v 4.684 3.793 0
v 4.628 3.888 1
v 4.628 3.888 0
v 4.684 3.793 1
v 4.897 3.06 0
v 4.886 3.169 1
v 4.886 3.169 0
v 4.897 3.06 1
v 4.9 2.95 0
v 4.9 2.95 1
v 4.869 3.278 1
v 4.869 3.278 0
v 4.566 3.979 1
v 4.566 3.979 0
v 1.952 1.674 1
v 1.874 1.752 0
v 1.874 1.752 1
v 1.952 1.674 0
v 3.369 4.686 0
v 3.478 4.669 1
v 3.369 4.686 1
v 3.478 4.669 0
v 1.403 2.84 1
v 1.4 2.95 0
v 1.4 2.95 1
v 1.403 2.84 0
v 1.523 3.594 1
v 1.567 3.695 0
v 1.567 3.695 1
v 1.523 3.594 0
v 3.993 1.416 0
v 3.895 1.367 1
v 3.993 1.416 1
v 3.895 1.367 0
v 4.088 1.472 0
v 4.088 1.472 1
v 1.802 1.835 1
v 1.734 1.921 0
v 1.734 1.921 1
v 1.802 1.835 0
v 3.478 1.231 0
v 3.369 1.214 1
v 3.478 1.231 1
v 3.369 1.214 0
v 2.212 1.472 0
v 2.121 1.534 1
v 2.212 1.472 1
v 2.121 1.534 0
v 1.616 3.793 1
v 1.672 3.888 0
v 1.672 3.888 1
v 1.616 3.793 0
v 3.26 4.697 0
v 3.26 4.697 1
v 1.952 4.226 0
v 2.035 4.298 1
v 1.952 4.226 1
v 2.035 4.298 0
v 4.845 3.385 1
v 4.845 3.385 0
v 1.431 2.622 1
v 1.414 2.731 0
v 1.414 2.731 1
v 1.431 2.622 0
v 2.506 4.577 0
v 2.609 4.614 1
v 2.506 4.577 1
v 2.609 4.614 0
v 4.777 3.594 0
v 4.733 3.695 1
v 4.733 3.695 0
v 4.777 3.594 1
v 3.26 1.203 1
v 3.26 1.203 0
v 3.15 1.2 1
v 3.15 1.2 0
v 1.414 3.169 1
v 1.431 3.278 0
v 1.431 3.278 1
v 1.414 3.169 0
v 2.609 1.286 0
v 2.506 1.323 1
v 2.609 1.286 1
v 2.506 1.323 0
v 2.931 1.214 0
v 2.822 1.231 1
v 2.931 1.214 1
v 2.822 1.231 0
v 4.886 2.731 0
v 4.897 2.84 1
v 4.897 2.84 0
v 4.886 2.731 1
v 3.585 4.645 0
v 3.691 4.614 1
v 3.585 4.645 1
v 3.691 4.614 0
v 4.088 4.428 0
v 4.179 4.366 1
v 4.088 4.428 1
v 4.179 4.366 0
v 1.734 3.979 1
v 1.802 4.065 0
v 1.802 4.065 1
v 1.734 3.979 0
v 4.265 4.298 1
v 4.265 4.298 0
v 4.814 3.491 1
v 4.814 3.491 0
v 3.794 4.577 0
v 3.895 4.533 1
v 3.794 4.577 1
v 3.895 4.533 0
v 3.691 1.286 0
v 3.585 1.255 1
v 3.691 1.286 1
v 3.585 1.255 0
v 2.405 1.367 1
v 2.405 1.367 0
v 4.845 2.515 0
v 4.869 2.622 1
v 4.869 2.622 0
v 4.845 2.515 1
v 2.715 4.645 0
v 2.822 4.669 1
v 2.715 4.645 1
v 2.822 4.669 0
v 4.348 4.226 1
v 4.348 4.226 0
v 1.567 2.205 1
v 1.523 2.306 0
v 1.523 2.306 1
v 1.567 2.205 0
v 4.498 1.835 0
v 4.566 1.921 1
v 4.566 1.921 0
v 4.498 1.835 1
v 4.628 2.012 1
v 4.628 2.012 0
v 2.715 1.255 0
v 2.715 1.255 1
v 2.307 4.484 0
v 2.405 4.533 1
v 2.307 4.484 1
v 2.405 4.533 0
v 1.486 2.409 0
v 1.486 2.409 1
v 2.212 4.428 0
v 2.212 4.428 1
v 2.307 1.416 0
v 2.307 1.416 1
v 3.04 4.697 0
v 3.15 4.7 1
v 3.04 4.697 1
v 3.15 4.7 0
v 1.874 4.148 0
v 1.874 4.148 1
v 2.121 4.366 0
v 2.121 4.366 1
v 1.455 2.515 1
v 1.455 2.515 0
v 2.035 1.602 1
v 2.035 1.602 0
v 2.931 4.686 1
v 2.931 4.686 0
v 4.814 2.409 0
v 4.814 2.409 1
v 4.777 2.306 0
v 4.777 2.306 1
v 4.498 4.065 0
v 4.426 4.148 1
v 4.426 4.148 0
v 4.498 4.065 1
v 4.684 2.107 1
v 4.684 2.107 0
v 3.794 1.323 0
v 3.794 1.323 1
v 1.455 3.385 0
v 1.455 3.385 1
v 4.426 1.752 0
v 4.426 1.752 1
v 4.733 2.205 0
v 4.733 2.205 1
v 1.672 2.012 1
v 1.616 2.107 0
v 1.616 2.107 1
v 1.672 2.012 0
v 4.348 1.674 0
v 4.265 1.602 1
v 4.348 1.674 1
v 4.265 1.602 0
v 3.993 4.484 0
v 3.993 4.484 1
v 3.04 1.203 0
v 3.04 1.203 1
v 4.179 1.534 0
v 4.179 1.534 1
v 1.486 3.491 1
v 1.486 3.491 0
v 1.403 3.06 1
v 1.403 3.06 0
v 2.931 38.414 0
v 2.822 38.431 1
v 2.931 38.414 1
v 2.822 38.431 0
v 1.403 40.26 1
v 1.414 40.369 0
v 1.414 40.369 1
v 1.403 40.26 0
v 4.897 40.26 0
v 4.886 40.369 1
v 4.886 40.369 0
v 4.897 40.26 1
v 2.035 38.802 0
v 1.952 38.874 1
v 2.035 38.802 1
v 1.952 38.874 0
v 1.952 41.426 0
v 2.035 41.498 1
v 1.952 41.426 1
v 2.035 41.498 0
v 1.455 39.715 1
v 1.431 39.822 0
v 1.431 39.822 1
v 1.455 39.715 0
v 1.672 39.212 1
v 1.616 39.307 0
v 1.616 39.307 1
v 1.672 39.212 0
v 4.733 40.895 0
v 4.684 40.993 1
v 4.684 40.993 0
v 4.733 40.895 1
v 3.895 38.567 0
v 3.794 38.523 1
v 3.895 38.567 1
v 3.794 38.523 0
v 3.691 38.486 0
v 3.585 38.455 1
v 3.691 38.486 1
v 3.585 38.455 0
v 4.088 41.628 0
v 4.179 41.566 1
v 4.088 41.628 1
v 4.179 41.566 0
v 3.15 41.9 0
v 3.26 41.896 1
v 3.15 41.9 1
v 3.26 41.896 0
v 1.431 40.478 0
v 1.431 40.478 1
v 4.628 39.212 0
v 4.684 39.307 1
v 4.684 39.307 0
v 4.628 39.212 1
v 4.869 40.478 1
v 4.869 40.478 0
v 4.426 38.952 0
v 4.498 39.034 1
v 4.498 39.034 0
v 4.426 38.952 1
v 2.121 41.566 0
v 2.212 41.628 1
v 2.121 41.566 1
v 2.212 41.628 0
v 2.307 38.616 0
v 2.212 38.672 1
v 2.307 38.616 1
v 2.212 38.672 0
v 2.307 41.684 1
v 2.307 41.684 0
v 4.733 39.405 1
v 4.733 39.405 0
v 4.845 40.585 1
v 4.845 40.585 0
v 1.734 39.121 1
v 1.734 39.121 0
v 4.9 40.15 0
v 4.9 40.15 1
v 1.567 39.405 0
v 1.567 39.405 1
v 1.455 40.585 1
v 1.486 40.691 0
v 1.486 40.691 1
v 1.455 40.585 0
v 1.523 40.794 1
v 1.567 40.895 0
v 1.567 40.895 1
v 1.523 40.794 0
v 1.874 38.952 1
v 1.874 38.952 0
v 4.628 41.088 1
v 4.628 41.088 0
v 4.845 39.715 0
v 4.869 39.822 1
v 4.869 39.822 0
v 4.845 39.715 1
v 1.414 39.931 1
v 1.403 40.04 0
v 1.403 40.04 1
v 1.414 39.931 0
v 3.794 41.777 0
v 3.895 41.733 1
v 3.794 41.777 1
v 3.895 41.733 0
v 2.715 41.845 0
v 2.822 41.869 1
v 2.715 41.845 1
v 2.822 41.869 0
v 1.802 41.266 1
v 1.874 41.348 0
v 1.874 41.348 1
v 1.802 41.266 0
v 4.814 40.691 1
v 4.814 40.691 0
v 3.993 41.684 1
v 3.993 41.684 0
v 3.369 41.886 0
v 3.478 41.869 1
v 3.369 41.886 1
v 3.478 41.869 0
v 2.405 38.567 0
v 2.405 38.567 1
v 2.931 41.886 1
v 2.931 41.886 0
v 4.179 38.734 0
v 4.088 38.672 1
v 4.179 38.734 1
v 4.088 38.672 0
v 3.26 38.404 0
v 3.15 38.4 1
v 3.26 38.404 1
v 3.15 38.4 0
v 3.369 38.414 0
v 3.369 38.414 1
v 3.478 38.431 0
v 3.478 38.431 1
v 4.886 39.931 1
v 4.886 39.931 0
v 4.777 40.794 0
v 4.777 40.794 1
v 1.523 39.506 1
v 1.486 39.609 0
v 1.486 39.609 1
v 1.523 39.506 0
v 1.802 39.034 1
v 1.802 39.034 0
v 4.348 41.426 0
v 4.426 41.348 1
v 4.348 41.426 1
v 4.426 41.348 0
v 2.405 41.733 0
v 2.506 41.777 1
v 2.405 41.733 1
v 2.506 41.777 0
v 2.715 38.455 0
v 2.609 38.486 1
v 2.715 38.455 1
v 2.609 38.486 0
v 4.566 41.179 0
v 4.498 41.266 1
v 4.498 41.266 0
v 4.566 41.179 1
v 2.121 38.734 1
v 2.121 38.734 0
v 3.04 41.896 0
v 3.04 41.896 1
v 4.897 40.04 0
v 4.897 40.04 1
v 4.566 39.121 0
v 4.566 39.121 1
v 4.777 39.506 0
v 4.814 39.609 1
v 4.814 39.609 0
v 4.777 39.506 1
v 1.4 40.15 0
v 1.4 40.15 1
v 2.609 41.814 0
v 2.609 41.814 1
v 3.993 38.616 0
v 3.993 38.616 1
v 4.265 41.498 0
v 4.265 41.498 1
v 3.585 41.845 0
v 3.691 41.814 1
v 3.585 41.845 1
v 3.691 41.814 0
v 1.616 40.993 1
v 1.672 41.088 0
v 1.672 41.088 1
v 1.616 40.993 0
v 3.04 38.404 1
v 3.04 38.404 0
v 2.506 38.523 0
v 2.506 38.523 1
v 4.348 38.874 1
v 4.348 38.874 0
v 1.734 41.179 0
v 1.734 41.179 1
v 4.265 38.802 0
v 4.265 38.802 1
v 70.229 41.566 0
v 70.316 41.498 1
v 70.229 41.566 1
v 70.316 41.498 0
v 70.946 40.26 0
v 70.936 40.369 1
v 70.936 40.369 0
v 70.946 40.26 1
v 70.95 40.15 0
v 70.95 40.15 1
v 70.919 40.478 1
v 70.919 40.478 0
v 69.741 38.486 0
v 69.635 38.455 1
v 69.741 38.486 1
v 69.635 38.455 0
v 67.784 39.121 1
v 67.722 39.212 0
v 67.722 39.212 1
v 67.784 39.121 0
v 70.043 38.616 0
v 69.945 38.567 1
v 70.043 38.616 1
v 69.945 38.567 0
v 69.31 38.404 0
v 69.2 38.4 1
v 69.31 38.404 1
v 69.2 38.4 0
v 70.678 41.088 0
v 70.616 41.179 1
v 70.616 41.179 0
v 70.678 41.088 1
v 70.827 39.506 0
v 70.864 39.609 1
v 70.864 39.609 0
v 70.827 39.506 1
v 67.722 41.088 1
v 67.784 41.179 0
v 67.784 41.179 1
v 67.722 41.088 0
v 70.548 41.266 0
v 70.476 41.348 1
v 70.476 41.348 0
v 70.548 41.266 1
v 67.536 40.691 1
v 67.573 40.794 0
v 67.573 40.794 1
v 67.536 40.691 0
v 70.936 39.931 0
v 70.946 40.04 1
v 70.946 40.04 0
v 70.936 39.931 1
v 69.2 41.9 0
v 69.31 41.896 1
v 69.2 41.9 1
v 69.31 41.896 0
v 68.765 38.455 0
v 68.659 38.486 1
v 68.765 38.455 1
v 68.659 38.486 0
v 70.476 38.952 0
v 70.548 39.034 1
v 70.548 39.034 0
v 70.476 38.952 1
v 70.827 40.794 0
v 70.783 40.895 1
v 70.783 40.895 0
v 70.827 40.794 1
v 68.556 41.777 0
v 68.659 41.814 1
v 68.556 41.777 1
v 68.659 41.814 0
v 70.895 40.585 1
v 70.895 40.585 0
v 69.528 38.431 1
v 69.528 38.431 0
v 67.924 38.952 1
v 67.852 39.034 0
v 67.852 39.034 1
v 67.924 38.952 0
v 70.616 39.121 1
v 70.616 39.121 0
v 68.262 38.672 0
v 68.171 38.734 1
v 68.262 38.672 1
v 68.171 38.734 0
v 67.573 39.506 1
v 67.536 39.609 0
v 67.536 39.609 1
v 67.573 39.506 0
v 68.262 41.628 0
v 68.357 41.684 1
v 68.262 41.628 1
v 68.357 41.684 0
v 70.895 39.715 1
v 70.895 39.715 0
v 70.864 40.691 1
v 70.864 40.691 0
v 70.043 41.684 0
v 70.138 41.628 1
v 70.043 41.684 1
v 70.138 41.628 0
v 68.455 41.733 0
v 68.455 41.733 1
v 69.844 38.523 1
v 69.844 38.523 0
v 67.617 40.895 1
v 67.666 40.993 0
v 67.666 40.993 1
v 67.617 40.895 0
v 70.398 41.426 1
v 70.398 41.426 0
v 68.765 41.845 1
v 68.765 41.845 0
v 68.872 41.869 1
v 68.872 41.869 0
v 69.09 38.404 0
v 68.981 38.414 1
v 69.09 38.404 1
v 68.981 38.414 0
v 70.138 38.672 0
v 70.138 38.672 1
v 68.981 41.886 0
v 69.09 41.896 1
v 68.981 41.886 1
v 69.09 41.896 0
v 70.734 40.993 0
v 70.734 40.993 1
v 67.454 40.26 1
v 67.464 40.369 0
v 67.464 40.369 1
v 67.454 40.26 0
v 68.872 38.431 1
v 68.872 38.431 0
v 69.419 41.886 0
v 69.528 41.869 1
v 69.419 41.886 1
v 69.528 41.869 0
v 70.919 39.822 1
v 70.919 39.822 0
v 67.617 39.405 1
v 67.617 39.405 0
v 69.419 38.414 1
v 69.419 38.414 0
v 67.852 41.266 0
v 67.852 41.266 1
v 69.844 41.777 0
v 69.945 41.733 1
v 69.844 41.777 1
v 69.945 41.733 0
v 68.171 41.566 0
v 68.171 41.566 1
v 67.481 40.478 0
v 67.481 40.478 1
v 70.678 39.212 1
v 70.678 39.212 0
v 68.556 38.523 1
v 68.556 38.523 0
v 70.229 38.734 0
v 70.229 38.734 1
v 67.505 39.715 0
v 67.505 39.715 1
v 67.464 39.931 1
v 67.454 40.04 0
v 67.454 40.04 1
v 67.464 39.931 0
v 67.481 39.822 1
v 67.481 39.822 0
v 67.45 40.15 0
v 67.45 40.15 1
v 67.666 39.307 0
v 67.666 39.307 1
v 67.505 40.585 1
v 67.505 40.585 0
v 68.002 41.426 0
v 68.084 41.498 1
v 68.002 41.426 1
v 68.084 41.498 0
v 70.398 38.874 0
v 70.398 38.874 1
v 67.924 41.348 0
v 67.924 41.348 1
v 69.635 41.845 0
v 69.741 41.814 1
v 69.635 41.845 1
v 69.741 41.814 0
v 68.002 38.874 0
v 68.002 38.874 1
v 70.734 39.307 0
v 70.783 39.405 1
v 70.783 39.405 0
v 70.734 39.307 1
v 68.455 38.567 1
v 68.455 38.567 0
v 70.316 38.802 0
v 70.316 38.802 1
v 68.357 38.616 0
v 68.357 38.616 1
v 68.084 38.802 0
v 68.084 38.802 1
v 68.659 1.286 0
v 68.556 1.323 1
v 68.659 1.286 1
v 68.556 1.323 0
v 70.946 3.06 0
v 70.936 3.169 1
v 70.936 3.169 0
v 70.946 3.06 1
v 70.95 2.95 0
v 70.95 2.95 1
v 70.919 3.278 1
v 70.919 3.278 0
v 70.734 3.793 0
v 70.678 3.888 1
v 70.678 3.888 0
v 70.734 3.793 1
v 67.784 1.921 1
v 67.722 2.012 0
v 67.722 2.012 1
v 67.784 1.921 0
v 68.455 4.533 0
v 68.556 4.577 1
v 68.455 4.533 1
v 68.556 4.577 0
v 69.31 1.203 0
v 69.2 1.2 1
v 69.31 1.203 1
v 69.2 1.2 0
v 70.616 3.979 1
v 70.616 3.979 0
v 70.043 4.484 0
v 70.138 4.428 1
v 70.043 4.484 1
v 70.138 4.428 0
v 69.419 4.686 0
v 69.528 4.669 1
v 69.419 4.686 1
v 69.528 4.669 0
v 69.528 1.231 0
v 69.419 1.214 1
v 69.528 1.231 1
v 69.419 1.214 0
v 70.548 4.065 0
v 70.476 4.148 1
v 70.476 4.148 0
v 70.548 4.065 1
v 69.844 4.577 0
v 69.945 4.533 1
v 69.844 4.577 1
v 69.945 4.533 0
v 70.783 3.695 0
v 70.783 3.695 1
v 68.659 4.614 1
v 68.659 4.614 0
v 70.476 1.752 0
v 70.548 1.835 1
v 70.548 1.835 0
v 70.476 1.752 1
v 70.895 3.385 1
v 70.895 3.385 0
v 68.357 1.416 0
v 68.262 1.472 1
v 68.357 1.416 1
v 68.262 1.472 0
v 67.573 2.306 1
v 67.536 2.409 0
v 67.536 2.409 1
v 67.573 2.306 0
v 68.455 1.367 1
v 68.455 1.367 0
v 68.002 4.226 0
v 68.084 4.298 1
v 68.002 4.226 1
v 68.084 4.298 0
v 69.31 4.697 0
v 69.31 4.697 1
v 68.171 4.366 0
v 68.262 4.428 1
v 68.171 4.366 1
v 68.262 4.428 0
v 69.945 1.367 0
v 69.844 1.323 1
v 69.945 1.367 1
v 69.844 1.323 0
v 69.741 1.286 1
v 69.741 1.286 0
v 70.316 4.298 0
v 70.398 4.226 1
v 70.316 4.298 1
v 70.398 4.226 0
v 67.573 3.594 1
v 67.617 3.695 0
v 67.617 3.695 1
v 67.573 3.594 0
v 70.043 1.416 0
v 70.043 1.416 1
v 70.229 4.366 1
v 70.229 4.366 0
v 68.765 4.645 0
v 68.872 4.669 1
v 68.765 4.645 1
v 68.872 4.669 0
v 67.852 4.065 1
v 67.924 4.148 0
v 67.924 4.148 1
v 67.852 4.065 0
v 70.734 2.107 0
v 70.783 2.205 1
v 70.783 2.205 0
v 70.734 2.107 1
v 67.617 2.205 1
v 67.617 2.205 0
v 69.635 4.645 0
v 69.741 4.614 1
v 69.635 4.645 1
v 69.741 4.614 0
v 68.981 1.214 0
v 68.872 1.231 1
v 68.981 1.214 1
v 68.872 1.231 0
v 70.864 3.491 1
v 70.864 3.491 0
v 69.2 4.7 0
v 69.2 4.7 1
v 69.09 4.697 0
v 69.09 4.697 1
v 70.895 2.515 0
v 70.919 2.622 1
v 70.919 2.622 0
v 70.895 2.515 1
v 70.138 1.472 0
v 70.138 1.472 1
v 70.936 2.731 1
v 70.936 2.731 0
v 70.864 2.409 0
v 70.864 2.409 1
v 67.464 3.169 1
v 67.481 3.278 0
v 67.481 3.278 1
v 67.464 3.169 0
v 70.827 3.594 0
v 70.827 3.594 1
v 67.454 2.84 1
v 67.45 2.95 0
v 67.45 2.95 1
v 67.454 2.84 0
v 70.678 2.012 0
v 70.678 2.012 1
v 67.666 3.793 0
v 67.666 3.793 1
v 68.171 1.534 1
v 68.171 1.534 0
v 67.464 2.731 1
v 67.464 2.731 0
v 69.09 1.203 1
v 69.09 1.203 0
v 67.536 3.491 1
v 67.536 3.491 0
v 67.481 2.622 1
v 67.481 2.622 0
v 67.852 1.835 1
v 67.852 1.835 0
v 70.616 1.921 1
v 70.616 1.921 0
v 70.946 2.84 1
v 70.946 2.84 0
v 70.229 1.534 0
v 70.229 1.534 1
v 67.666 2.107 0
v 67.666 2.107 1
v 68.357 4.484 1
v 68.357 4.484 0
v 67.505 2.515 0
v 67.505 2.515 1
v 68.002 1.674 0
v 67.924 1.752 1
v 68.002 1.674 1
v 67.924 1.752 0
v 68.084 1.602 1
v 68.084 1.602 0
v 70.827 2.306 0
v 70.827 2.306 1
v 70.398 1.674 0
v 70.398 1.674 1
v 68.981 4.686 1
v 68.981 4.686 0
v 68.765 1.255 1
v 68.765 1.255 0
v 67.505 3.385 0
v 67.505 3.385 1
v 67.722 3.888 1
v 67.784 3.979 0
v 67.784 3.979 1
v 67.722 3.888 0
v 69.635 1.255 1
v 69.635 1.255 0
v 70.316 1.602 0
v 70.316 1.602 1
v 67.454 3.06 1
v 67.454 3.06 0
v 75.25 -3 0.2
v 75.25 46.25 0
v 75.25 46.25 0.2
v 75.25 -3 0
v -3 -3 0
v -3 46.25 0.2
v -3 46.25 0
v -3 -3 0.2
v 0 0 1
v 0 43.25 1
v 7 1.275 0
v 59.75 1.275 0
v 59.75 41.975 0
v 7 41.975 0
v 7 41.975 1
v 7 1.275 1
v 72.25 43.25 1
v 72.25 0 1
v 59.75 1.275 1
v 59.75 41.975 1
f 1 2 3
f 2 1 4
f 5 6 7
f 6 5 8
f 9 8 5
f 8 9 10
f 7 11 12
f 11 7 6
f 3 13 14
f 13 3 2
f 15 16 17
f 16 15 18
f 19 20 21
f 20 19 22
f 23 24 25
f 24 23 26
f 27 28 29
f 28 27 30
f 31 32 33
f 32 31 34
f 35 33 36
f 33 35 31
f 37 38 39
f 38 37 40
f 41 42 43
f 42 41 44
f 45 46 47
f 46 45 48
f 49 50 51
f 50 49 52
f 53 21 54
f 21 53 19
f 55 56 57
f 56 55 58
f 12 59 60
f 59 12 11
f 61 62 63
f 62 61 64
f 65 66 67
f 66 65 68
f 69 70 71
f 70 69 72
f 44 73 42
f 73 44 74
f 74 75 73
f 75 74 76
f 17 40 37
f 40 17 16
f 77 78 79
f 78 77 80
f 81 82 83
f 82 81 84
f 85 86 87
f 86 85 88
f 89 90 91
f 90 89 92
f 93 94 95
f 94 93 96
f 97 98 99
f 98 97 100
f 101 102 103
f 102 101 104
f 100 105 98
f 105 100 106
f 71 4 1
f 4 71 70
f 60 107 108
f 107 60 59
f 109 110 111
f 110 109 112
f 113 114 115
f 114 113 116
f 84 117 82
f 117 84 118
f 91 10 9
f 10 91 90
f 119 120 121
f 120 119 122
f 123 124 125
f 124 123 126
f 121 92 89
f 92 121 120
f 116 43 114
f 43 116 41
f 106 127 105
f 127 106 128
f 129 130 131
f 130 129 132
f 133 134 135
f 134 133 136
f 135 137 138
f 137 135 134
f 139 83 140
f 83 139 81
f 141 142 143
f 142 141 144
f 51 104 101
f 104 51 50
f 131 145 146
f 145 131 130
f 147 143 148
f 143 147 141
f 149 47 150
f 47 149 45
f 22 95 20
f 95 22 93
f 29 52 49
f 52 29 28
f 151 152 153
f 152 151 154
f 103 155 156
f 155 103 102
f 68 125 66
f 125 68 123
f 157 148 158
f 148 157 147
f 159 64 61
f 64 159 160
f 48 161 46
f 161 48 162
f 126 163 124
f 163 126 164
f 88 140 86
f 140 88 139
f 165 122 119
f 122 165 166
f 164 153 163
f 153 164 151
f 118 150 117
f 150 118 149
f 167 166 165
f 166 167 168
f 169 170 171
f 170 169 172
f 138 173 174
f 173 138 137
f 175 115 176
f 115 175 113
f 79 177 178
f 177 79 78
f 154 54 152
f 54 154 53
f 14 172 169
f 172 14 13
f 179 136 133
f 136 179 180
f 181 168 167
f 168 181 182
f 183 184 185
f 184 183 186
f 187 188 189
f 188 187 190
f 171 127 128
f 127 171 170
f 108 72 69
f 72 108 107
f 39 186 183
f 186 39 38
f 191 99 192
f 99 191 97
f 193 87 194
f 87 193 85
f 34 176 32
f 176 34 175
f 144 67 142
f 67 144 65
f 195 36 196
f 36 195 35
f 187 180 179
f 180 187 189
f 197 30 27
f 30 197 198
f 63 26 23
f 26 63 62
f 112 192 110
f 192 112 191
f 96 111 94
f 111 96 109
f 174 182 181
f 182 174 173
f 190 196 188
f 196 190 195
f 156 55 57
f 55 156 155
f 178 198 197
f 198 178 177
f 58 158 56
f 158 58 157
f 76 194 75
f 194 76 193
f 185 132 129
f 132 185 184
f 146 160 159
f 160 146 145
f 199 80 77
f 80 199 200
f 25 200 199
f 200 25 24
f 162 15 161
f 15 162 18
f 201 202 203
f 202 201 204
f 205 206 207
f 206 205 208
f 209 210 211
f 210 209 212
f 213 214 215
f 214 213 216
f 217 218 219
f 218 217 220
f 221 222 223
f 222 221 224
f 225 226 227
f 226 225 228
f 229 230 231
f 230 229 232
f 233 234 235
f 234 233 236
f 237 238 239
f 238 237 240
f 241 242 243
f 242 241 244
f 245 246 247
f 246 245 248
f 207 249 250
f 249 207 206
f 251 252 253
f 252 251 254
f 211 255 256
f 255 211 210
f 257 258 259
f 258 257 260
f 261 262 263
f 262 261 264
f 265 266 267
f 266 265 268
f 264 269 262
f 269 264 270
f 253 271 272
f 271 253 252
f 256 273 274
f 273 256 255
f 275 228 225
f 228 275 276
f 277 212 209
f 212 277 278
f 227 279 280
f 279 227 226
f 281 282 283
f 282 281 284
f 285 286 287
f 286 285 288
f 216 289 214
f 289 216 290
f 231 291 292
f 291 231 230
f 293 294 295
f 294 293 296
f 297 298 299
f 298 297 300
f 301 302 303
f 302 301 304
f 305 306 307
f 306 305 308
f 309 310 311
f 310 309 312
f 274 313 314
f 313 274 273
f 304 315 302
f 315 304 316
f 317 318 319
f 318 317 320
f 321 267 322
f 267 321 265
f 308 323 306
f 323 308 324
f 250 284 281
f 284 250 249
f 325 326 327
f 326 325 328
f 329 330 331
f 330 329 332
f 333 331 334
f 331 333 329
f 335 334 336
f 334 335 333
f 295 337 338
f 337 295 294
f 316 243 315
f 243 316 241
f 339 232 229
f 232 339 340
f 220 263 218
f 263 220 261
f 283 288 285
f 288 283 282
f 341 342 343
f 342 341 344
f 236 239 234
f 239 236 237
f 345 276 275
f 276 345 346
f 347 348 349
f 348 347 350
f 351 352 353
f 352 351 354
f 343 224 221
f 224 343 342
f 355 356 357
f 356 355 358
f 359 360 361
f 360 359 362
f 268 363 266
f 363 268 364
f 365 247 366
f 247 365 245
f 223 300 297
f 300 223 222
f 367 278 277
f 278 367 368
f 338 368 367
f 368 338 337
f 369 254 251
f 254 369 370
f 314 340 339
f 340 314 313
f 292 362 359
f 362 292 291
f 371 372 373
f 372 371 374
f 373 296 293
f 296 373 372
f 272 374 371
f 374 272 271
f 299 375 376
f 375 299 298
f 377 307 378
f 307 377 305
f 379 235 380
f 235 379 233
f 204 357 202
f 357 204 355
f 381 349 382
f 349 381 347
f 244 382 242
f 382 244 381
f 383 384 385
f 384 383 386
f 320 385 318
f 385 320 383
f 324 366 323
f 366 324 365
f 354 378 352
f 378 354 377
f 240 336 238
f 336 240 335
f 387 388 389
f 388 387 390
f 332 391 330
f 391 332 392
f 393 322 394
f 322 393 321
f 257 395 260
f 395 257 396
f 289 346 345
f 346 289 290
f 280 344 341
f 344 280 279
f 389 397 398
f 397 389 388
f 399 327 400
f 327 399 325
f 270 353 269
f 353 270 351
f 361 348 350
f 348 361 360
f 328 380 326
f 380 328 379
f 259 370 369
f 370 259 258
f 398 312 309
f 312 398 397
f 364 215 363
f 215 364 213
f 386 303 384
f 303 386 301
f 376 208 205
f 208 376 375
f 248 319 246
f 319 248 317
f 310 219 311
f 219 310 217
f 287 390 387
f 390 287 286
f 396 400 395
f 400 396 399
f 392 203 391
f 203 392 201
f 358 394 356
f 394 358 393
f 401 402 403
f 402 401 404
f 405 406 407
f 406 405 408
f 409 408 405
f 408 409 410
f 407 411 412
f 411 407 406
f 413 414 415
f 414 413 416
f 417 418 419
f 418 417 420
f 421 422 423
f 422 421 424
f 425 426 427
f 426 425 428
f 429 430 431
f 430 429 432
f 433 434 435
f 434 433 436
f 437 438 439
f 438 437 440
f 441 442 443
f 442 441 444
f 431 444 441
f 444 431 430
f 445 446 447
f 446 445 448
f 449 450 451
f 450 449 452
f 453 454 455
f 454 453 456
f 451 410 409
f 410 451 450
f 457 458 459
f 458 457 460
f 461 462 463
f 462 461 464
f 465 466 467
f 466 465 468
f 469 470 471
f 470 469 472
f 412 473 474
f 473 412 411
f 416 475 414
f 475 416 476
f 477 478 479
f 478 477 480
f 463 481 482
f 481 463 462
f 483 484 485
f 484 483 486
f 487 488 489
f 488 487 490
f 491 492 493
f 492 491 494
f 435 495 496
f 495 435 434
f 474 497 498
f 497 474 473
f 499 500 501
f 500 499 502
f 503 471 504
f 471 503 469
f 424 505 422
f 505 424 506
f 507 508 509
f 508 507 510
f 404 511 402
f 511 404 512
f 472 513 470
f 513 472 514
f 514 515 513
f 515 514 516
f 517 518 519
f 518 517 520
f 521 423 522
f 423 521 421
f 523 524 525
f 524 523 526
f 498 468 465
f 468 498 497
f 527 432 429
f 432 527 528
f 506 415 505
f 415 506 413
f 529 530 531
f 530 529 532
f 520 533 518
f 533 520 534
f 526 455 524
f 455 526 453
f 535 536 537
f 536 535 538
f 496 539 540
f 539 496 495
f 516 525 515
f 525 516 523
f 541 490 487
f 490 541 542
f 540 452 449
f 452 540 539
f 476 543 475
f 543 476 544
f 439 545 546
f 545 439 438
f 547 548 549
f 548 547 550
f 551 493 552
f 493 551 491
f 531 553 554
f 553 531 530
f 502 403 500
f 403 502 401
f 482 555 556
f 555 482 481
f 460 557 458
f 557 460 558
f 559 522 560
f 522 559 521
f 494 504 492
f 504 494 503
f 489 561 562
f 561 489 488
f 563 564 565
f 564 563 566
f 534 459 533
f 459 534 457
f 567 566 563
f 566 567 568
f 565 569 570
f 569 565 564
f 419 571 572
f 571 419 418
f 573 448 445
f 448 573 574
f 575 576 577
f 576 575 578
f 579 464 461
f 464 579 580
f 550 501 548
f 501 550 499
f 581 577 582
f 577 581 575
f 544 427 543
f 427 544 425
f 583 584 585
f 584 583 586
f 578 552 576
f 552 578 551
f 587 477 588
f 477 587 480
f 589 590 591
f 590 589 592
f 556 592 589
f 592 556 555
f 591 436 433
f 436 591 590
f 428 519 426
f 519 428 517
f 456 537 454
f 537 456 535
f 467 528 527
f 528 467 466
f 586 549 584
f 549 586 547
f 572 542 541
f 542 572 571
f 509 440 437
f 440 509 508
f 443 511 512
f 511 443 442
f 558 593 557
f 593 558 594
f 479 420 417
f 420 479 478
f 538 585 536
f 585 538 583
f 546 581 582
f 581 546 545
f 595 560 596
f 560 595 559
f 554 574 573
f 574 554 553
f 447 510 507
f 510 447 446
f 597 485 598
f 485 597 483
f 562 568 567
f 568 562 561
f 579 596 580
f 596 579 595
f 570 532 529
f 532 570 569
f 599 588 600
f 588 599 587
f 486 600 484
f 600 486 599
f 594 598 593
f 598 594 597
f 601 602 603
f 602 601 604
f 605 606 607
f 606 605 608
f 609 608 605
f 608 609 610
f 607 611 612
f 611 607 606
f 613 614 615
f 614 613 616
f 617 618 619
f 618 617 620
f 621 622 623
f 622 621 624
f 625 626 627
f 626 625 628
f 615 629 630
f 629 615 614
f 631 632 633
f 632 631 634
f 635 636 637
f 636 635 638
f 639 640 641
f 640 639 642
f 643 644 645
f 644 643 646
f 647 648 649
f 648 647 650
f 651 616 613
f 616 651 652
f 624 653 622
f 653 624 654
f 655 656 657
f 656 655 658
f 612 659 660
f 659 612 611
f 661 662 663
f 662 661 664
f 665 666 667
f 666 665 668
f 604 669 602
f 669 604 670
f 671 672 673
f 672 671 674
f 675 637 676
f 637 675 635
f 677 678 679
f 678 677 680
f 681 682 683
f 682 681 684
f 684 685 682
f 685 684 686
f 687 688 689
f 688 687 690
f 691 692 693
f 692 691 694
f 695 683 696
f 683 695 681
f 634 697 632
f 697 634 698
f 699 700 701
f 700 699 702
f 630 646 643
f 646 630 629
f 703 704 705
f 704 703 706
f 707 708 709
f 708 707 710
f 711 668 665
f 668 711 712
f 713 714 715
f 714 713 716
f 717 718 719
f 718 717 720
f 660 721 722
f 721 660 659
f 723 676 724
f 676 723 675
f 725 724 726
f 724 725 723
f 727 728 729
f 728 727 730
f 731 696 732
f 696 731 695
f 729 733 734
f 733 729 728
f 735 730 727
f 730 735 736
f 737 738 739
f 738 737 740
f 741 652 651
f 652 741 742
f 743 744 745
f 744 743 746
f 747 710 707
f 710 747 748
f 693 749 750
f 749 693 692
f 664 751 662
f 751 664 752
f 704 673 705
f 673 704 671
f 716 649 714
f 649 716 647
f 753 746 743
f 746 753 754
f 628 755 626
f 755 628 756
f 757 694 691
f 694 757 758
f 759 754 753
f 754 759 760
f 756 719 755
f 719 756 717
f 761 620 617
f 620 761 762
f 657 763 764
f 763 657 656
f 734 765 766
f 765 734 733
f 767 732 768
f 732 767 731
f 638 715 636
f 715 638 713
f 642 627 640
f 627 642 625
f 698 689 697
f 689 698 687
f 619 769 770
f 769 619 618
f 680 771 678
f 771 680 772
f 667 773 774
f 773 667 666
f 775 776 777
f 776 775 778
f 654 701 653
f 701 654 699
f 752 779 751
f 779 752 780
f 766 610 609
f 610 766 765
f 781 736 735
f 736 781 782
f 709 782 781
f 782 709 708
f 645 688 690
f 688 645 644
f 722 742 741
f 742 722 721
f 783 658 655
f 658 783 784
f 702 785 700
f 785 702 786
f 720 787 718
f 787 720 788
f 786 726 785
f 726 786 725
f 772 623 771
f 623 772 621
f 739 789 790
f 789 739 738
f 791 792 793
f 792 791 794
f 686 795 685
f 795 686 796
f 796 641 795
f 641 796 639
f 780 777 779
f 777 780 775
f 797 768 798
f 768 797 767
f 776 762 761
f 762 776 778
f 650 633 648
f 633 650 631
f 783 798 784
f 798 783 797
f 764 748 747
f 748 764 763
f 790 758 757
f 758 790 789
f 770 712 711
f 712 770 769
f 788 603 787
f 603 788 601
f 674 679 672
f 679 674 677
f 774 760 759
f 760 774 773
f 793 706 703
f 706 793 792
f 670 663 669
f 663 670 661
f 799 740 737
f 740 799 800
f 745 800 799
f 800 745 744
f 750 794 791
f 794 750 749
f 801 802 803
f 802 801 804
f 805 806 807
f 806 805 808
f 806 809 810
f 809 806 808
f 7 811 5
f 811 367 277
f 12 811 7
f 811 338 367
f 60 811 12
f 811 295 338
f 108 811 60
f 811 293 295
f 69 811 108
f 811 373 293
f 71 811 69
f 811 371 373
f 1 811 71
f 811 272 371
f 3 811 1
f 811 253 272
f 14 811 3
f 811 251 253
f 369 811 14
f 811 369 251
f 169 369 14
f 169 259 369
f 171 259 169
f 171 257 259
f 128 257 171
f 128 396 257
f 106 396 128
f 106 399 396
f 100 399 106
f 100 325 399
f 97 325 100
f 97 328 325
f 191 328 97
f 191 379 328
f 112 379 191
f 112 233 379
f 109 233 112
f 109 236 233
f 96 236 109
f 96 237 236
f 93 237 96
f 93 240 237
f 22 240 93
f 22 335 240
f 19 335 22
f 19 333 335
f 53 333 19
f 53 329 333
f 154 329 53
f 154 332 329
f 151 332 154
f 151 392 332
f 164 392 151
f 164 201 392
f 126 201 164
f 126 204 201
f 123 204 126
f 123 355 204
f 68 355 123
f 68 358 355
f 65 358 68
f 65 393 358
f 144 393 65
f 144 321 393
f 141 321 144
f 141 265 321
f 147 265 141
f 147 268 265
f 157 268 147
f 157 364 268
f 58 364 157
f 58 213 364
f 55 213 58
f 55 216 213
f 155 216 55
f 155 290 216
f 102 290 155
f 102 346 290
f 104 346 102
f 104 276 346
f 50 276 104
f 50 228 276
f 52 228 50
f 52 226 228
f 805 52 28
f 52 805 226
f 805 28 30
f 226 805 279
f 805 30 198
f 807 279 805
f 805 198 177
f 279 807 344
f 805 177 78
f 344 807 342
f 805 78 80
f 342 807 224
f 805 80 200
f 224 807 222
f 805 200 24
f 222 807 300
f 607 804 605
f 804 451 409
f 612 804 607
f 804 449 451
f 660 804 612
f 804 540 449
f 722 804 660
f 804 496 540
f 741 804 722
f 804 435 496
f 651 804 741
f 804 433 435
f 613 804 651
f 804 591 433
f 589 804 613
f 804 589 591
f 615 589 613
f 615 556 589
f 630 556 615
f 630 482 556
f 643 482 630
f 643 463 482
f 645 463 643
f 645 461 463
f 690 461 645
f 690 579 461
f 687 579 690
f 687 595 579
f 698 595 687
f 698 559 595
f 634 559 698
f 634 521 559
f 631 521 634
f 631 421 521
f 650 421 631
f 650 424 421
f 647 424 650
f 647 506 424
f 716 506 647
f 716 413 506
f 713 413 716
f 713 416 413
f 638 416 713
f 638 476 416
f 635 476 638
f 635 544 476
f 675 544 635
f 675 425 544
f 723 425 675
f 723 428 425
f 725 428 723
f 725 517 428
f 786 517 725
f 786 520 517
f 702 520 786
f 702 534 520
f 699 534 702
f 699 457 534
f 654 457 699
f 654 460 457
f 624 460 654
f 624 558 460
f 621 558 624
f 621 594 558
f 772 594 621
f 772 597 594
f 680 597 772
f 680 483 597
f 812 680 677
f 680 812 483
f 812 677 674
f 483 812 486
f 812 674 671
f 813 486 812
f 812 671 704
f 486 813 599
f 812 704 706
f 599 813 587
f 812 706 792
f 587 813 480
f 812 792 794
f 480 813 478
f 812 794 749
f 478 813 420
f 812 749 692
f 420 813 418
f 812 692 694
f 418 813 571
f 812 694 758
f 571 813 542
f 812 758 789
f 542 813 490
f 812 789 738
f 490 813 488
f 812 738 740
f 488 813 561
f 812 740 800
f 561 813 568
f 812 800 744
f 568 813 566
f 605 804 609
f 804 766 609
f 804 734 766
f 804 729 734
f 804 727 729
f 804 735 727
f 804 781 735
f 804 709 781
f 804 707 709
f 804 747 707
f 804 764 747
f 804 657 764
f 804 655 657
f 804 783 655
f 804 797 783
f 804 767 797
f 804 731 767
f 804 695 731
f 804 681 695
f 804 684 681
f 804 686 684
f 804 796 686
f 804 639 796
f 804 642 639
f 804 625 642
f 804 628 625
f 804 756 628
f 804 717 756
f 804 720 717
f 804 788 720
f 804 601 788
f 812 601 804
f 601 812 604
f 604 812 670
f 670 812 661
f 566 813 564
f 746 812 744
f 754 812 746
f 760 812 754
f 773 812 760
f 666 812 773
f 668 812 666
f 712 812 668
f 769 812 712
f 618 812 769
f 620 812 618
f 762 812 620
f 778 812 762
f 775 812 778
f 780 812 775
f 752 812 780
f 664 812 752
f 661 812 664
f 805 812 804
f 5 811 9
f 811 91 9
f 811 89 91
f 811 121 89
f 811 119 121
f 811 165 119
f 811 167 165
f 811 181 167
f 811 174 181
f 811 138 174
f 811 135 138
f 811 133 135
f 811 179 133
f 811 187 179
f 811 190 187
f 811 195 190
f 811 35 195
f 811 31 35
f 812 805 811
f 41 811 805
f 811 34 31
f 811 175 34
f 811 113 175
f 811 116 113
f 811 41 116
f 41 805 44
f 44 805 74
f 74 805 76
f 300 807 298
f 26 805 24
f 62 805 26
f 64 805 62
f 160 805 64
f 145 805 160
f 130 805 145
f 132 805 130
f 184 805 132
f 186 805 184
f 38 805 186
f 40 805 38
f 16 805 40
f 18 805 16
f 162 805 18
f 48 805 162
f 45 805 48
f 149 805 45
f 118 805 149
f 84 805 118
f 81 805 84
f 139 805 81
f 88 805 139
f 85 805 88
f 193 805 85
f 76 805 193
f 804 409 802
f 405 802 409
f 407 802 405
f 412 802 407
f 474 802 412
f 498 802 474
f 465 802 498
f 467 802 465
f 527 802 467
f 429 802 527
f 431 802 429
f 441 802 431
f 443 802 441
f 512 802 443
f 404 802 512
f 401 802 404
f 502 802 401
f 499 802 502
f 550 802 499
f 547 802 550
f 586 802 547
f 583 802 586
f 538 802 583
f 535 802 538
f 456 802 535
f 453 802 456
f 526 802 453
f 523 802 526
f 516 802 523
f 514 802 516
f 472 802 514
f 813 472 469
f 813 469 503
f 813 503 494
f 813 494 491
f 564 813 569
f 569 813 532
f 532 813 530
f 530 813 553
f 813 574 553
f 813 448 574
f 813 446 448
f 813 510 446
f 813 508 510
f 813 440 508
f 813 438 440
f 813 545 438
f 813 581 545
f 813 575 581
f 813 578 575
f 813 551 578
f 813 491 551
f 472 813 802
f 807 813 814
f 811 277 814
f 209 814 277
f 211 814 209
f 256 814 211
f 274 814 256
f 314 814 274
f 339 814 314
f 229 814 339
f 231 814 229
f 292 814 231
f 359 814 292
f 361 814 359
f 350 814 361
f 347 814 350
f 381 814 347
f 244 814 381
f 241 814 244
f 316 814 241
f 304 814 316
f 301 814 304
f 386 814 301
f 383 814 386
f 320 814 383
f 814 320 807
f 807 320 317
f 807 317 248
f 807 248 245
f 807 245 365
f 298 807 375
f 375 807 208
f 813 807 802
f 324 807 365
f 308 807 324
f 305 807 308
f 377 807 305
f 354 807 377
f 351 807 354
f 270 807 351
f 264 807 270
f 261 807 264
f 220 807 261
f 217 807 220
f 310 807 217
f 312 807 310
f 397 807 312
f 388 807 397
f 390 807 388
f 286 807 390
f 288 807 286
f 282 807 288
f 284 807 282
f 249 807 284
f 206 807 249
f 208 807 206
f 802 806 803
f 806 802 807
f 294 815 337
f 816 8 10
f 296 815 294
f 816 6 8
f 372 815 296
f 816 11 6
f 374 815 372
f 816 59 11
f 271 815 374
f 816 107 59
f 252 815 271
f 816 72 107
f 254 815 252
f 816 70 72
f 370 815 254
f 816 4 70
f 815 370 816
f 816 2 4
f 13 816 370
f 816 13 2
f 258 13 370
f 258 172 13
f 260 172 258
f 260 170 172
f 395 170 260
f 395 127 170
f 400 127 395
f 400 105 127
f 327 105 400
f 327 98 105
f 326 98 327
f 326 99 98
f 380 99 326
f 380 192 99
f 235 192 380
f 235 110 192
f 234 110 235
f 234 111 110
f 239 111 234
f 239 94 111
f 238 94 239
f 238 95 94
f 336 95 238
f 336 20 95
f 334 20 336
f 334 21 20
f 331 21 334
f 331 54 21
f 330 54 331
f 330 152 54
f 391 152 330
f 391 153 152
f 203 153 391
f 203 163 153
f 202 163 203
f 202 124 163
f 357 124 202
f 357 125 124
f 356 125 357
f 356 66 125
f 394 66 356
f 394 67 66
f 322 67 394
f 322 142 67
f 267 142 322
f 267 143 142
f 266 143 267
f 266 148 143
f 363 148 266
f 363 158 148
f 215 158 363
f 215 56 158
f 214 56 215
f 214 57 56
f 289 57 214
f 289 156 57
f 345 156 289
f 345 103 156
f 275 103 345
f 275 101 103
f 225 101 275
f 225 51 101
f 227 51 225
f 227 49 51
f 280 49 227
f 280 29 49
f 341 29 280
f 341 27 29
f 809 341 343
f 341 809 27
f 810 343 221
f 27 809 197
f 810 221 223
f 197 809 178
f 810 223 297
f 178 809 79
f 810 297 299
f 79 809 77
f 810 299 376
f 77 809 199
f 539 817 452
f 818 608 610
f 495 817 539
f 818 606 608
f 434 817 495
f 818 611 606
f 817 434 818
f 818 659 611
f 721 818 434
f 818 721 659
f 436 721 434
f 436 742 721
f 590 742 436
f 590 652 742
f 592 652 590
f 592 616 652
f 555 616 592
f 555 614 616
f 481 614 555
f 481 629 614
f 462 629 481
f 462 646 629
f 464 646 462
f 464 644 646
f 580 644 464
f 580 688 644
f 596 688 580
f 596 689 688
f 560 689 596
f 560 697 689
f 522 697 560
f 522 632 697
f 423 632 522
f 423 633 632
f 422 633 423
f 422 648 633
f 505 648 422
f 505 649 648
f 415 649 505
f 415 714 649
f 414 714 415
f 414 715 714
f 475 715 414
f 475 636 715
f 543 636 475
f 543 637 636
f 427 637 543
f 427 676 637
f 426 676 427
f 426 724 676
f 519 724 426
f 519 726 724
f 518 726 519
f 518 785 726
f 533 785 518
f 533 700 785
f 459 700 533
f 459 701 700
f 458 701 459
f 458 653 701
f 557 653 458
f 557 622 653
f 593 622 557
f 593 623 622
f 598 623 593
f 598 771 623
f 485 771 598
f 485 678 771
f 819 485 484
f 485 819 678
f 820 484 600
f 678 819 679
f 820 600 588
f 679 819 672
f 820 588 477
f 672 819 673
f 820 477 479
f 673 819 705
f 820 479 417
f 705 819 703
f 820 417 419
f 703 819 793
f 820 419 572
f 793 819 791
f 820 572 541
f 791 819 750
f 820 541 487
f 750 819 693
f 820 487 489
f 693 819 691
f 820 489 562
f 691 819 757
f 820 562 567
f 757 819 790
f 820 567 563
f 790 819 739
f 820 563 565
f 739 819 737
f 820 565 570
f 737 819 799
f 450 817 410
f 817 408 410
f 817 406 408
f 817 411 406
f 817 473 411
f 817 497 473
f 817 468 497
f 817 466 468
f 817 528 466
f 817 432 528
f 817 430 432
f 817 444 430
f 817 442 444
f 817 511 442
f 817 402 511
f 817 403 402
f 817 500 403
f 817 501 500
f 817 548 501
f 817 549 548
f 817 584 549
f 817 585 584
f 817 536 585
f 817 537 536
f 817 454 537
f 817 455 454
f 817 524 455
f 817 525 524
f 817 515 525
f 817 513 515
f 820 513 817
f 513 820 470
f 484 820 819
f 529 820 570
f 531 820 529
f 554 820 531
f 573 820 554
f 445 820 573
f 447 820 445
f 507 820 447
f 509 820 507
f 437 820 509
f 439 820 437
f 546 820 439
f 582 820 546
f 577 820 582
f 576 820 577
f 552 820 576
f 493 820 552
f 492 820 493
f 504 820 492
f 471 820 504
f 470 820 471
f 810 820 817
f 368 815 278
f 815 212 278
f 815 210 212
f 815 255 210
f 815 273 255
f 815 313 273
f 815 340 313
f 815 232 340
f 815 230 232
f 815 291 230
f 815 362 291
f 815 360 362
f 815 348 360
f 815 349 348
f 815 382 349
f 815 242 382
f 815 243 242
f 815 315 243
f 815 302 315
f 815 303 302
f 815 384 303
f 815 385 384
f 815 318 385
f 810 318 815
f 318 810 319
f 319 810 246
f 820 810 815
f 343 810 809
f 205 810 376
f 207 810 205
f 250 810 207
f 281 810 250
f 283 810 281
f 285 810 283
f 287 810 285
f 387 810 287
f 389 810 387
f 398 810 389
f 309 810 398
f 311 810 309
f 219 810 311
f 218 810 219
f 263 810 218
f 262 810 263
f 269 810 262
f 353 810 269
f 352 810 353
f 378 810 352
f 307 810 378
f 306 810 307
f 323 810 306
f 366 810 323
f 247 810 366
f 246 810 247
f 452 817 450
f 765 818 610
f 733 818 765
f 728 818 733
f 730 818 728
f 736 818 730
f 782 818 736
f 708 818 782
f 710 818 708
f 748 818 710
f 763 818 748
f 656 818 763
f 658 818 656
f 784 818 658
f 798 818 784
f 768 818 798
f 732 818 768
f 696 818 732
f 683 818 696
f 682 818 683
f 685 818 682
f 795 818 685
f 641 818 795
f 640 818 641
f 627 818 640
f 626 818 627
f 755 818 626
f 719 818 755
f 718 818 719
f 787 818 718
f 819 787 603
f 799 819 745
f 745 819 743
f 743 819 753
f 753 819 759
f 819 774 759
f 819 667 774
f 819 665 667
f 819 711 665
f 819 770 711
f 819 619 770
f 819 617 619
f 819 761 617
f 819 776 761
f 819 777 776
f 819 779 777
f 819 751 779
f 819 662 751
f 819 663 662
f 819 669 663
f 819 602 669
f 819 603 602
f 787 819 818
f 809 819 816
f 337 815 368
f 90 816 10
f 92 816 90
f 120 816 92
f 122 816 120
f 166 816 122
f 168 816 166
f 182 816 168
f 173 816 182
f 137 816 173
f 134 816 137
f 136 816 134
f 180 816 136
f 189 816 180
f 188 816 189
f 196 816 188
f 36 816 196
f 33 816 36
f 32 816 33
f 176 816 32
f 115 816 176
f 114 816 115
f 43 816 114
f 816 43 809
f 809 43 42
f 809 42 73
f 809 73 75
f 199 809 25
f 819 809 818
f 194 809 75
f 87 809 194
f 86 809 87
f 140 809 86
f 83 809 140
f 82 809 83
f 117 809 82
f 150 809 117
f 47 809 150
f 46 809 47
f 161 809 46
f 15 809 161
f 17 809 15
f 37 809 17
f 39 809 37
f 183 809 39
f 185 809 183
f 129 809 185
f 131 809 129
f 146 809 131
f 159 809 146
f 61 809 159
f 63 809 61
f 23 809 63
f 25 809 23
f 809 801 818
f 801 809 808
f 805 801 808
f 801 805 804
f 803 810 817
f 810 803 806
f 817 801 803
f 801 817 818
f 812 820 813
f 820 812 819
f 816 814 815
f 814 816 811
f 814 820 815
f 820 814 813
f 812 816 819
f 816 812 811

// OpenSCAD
// file: ../libraries/commons.scad
module forEachCoord(throws_coords_list) {
    for (coords = throws_coords_list)
        translate(
            [
                coords[0] == undef ? 0 : coords[0],
                coords[1] == undef ? 0 : coords[1],
                coords[2] == undef ? 0 : coords[2],
            ]
        )
            children();
}


// @todo
module forEachPointCoord(throws_coords_list) {
    for (coords = throws_coords_list)
        translate(
            [
                coords[0] == undef ? 0 : coords[0],
                coords[1] == undef ? 0 : coords[1],
                coords[2] == undef ? 0 : coords[2],
            ]
        )
            children();
}
// file: ../enveloppes/screen-enveloppe.scad
include <../assets/lcd-screen/configurations.scad>

use <../libraries/commons.scad>

/**
 * screenFixationThrows
 * @name screenFixationThrows
 * @description screenFixationThrows
 * @type enveloppe
 * @parent root
 */
module screenFixationThrows(
    electronic_board_x_size = screen_asset_electronic_board_x_size,
    electronic_board_y_size = screen_asset_electronic_board_y_size,
    x_margin_left = screen_asset_x_margin_throws_left,
    x_margin_right = screen_asset_x_margin_throws_right,
    y_margin_top = screen_asset_y_margin_throws_top,
    y_margin_bottom = screen_asset_y_margin_throws_bottom,
    throw_diameter = 3.1,
    $fn = $fn
) {

    throws_z_size = 20;

    offset_coords_throw_list = [
        [
            x_margin_left,
            y_margin_bottom,
        ],
        [
            x_margin_left,
            electronic_board_y_size - y_margin_top,
        ],
        [
            electronic_board_x_size - x_margin_right,
            electronic_board_y_size - y_margin_top,
        ],
        [
            electronic_board_x_size - x_margin_right,
            y_margin_bottom,
        ]
    ];

    // Fixations throws
    translate([0,0, -throws_z_size / 2])
        forEachCoord(offset_coords_throw_list)
            cylinder(h = throws_z_size, d = throw_diameter, center = false, $fn = $fn);
}


module screenMainThrow(
    electronic_board_x_size = screen_asset_electronic_board_x_size,
    electronic_board_y_size = screen_asset_electronic_board_y_size,
    screen_external_x_size = screen_asset_screen_external_x_size,
    screen_external_y_size = screen_asset_screen_external_y_size,
    screen_throw_x_margin = 2.8,
    screen_throw_y_margin = 0.5
) {

    throws_z_size = 20;

    // Main screen throw
    translate([
        (electronic_board_x_size - screen_external_x_size) / 2 - screen_throw_x_margin,
        (electronic_board_y_size - screen_external_y_size) / 2 - screen_throw_y_margin,
        -throws_z_size / 2
    ])
        cube(
            [
                screen_external_x_size + (screen_throw_x_margin * 2),
                screen_external_y_size + (screen_throw_y_margin * 2),
                throws_z_size,
            ]
        );
}


module screenConnectorThrow(
    electronic_board_y_size = screen_asset_electronic_board_y_size
) {
    throws_z_size = 20;

    translate(
        [
            0.85 - (0.5 / 2),
            11.3,
            -throws_z_size / 2
        ]
    )
        cube(
            [
                2.5 + 0.5,
                electronic_board_y_size - (11.3 * 2),
                throws_z_size
            ]
        );
}


module sceenVisibleZoneCube(
    x_margin = 0,
    y_margin = 0,
    z_size = 0,

    electronic_board_x_size = screen_asset_electronic_board_x_size,
    electronic_board_y_size = screen_asset_electronic_board_y_size,
    screen_external_x_size = screen_asset_screen_external_x_size,
    screen_external_y_size = screen_asset_screen_external_y_size,
) {

    translate([
        (electronic_board_x_size - screen_external_x_size) / 2 + 1 - x_margin,
        (electronic_board_y_size - screen_external_y_size) / 2 + 1 - y_margin,
        0
    ])
        cube(
            [
                screen_external_x_size - 1 - 6.5 + (x_margin * 2),
                screen_external_y_size - 1 - 1 + (y_margin * 2),
                z_size,
            ]
        );
}
// file: ../configurations/global.scad
housing_facades_throws_diameter = 3.8;

// external size
case_external_x_size = 90;
case_external_y_size = 140;
case_external_z_size = 38;
case_external_panes_thickness = 4.8;

facade_front_round_edges_radius = 5;
facade_throws_margin = 5;

facade_front_fixation_throws_diameter = housing_facades_throws_diameter;

// facade corners
facade_corners_offset_lenght = 9;
facade_corners_main_x_size = 19;
facade_corners_main_y_size = 19;
facade_corners_main_thickness = 11;
facade_corners_correction_offset_length = 0.2;
facade_corners_correction_offset_thickness = 0.0;
facade_fn = 100;


facade_controller_coords = [
    case_external_x_size / 2,
    case_external_y_size / 2 - 30,
];


// Screen frames
screen_frame_electronic_board_margin = 3;
screen_frame_throw_diameter = 3.5;
screen_frame_piece_z_size = 1.5;
screen_frame_piece_glass_embedding_margin = 1;
screen_frame_piece_glass_embedding_z_depth = 1;
screen_frame_facade_piece_z_size = 1;
screen_frame_fn = 100;

screen_glass_visible_zone_x_margin = 0.7;
screen_glass_visible_zone_y_margin = 0.7;
screen_glass_z_size = 1;

facade_screen_coords = [
    case_external_x_size / 2,
    case_external_y_size / 2 + 28,
];


// Generics
insert_throw_diameter = 4.2;
insert_throw_length = 6 + 2;


// Controller facade
controller_breadboard_x_size_point = 28;
controller_breadboard_y_size_point = 9;

controller_facade_z_size = 2;
controller_facade_button_throw_margin = 1;
controller_facade_small_button_throw_margin = 0.5;
controller_facade_a_b_button_throw_margin = 0.5;

controller_facade_border_rounded_border_1 = 5;
controller_facade_border_rounded_border_2 = 4;

controller_facade_with_border_x_size = 82;
controller_facade_with_border_y_size = 47;

controller_facade_border_throws_margin = 5;
controller_braidboard_throw_margin = 1;

controller_facade_border_fn = 80;


// Cross Button
controller_cross_button_x_y_size = 20;
controller_cross_button_z_size = 4;
controller_cross_button_thickness = 6;
controller_cross_button_round_edges_radius = 1;
controller_cross_button_support_x_y_size = 22;
controller_cross_button_support_z_size = 1;
controller_cross_button_fn = 150;


// A and B Buttons
controller_a_b_button_diameter = 7.5;
controller_a_b_button_z_size = 4;
controller_a_b_button_support_diameter = 9.5;
controller_a_b_button_support_z_size = 1;
controller_a_b_button_fn = 80;


// small Buttons
controller_small_button_diameter = 5.5;
controller_small_button_z_size = 3;
controller_small_button_support_diameter = 7.5;
controller_small_button_support_z_size = 1;
controller_small_button_fn = 80;

// Directional cross
controller_directional_cross_points_coords = [6, 5];
controller_start_button_points_coords = [14, 3];
controller_select_button_points_coords = [18, 3];
controller_menu_button_points_coords = [14, 7];
controller_option_button_points_coords = [18, 7];
controller_a_button_points_coords = [23, 4];
controller_b_button_points_coords = [27, 6];
controller_bolt_throws_list = [
    [2, 2],
    [2, 8],
    [10, 2],
    [10, 8],
    [27, 2],
    [23, 8],
];


// usb charger holder
usb_charger_support_total_x_size = 17.57 + 15;
usb_charger_support_total_y_size = 12;
usb_charger_support_total_z_size = 2;


usb_charger_fixation_support_z_size = 4.5;
usb_charger_encaps_x_size = 17.57 + 1;
usb_charger_encaps_y_size = 27.85 + 1;
usb_charger_encaps_z_size = 1;

usb_charger_facade_x_fixation_spacing = 42;
usb_charger_facade_y_size = 1.36;
usb_charger_facade_z_size = 14;

usb_charger_throw_diameter = 3.5;
usb_charger_facade_holder_z_offset = 3.5; //
usb_charger_fixation_facade_y_margin = 0.5;
usb_charger_throw_offset_y = 4.5;
usb_charger_throw_offset_x = 3.5;
usb_charger_facade_fn = 100;

usb_charger_external_facade_main_throw_margin = 2;
usb_charger_external_facade_main_throw_diameter = housing_facades_throws_diameter;

usb_charger_coords = [
    28, 15
];


facade_top_on_off_button_throw_diameter = 12.8;

facade_top_on_off_button_coords = [
    case_external_x_size / 2 + 18,
    case_external_z_size / 2
];


// Bolt join Piece Mother board
bolt_join_mother_board_internal_diameter = 3.5;
bolt_join_mother_board_external_diameter = 3.5 + (0.4 * 6);
bolt_join_mother_board_height = 3;

// Bolt join Piece GamePadController
bolt_join_game_pad_internal_diameter = 3.5;
bolt_join_game_pad_external_diameter = 3.5 + (0.4 * 6);
bolt_join_game_pad_height = 6.5;

bolt_join_fn = 500;


// Mother board breadboard
mother_board_x_size_point = 25;
mother_board_y_size_point = 32;

mother_board_coords = [
    case_external_x_size / 2 - ((mother_board_x_size_point + 1) * 2.54) / 2,
    44,
    3
];

mother_board_bolt_throws_list = [
    [3, 2],
    [3, 17],
    [23, 2],
    [23, 17],
];


// Speaker
speaker_facade_throw_diameter = 28 + 1;
speaker_facade_z_size = 1.36;
speaker_facade_rounded_radius = 5;
// file: ../assets/lcd-screen/configurations.scad
screen_asset_electronic_board_x_size = 72.25;
screen_asset_electronic_board_y_size = 43.25;
screen_asset_electronic_board_z_size = 1.25;

screen_asset_screen_external_x_size = 60.25;
screen_asset_screen_external_y_size = 42.7;
screen_asset_screen_external_z_size = 4 - 1.25;

screen_asset_throw_diameter = 3.1;

screen_asset_x_margin_throws_left = 1.6 + 1.55;
screen_asset_x_margin_throws_right = 1.5 + 1.55;
screen_asset_y_margin_throws_top = 1.55 + 1.55;
screen_asset_y_margin_throws_bottom = 1.4 + 1.55;
// main file
include <../assets/lcd-screen/configurations.scad>
include <../configurations/global.scad>

use <../enveloppes/screen-enveloppe.scad>

/**
 * screenFrameFacadePiece
 * @name screenFrameFacadePiece
 * @description Piece 3D Prined
 * @type piece
 * @parent screenComponent
 */
module screenFrameFacadePiece(
    electronic_board_x_size = screen_asset_electronic_board_x_size,
    electronic_board_y_size = screen_asset_electronic_board_y_size,

    screen_frame_electronic_board_margin = screen_frame_electronic_board_margin,
    screen_frame_z_size = screen_frame_facade_piece_z_size,
    throw_diameter = screen_frame_throw_diameter,
    $fn = screen_frame_fn
) {

    left_margin = screen_frame_electronic_board_margin;
    right_margin = screen_frame_electronic_board_margin;
    top_margin = screen_frame_electronic_board_margin;
    bottom_margin = screen_frame_electronic_board_margin;

    throws_z_size = 20;

    bottom_part_z = 0.2;
    top_part_z = 0.1;
    top_part_throws_x_y_margin = 0;

    difference() {
        hull() {
            translate([-left_margin, -bottom_margin, 0])
                cube(
                    [
                        electronic_board_x_size + left_margin + right_margin,
                        electronic_board_y_size + top_margin + bottom_margin,
                        bottom_part_z
                    ]
                );

            translate([
                -top_part_throws_x_y_margin,
                -top_part_throws_x_y_margin,
                screen_frame_z_size - top_part_z
            ])
                cube(
                    [
                        electronic_board_x_size + top_part_throws_x_y_margin * 2,
                        electronic_board_y_size + top_part_throws_x_y_margin * 2,
                        top_part_z
                    ]
                );
        }

        translate([0,0, -throws_z_size / 2])
            sceenVisibleZoneCube(
                z_size = throws_z_size
            );

        screenFixationThrows(
            throw_diameter = throw_diameter,
            $fn = $fn
        );        
    }
}

/**
 * @stl
 * @png
 * @colorscheme BeforeDawn
 * @view axes,scales
 */
screenFrameFacadePiece();
